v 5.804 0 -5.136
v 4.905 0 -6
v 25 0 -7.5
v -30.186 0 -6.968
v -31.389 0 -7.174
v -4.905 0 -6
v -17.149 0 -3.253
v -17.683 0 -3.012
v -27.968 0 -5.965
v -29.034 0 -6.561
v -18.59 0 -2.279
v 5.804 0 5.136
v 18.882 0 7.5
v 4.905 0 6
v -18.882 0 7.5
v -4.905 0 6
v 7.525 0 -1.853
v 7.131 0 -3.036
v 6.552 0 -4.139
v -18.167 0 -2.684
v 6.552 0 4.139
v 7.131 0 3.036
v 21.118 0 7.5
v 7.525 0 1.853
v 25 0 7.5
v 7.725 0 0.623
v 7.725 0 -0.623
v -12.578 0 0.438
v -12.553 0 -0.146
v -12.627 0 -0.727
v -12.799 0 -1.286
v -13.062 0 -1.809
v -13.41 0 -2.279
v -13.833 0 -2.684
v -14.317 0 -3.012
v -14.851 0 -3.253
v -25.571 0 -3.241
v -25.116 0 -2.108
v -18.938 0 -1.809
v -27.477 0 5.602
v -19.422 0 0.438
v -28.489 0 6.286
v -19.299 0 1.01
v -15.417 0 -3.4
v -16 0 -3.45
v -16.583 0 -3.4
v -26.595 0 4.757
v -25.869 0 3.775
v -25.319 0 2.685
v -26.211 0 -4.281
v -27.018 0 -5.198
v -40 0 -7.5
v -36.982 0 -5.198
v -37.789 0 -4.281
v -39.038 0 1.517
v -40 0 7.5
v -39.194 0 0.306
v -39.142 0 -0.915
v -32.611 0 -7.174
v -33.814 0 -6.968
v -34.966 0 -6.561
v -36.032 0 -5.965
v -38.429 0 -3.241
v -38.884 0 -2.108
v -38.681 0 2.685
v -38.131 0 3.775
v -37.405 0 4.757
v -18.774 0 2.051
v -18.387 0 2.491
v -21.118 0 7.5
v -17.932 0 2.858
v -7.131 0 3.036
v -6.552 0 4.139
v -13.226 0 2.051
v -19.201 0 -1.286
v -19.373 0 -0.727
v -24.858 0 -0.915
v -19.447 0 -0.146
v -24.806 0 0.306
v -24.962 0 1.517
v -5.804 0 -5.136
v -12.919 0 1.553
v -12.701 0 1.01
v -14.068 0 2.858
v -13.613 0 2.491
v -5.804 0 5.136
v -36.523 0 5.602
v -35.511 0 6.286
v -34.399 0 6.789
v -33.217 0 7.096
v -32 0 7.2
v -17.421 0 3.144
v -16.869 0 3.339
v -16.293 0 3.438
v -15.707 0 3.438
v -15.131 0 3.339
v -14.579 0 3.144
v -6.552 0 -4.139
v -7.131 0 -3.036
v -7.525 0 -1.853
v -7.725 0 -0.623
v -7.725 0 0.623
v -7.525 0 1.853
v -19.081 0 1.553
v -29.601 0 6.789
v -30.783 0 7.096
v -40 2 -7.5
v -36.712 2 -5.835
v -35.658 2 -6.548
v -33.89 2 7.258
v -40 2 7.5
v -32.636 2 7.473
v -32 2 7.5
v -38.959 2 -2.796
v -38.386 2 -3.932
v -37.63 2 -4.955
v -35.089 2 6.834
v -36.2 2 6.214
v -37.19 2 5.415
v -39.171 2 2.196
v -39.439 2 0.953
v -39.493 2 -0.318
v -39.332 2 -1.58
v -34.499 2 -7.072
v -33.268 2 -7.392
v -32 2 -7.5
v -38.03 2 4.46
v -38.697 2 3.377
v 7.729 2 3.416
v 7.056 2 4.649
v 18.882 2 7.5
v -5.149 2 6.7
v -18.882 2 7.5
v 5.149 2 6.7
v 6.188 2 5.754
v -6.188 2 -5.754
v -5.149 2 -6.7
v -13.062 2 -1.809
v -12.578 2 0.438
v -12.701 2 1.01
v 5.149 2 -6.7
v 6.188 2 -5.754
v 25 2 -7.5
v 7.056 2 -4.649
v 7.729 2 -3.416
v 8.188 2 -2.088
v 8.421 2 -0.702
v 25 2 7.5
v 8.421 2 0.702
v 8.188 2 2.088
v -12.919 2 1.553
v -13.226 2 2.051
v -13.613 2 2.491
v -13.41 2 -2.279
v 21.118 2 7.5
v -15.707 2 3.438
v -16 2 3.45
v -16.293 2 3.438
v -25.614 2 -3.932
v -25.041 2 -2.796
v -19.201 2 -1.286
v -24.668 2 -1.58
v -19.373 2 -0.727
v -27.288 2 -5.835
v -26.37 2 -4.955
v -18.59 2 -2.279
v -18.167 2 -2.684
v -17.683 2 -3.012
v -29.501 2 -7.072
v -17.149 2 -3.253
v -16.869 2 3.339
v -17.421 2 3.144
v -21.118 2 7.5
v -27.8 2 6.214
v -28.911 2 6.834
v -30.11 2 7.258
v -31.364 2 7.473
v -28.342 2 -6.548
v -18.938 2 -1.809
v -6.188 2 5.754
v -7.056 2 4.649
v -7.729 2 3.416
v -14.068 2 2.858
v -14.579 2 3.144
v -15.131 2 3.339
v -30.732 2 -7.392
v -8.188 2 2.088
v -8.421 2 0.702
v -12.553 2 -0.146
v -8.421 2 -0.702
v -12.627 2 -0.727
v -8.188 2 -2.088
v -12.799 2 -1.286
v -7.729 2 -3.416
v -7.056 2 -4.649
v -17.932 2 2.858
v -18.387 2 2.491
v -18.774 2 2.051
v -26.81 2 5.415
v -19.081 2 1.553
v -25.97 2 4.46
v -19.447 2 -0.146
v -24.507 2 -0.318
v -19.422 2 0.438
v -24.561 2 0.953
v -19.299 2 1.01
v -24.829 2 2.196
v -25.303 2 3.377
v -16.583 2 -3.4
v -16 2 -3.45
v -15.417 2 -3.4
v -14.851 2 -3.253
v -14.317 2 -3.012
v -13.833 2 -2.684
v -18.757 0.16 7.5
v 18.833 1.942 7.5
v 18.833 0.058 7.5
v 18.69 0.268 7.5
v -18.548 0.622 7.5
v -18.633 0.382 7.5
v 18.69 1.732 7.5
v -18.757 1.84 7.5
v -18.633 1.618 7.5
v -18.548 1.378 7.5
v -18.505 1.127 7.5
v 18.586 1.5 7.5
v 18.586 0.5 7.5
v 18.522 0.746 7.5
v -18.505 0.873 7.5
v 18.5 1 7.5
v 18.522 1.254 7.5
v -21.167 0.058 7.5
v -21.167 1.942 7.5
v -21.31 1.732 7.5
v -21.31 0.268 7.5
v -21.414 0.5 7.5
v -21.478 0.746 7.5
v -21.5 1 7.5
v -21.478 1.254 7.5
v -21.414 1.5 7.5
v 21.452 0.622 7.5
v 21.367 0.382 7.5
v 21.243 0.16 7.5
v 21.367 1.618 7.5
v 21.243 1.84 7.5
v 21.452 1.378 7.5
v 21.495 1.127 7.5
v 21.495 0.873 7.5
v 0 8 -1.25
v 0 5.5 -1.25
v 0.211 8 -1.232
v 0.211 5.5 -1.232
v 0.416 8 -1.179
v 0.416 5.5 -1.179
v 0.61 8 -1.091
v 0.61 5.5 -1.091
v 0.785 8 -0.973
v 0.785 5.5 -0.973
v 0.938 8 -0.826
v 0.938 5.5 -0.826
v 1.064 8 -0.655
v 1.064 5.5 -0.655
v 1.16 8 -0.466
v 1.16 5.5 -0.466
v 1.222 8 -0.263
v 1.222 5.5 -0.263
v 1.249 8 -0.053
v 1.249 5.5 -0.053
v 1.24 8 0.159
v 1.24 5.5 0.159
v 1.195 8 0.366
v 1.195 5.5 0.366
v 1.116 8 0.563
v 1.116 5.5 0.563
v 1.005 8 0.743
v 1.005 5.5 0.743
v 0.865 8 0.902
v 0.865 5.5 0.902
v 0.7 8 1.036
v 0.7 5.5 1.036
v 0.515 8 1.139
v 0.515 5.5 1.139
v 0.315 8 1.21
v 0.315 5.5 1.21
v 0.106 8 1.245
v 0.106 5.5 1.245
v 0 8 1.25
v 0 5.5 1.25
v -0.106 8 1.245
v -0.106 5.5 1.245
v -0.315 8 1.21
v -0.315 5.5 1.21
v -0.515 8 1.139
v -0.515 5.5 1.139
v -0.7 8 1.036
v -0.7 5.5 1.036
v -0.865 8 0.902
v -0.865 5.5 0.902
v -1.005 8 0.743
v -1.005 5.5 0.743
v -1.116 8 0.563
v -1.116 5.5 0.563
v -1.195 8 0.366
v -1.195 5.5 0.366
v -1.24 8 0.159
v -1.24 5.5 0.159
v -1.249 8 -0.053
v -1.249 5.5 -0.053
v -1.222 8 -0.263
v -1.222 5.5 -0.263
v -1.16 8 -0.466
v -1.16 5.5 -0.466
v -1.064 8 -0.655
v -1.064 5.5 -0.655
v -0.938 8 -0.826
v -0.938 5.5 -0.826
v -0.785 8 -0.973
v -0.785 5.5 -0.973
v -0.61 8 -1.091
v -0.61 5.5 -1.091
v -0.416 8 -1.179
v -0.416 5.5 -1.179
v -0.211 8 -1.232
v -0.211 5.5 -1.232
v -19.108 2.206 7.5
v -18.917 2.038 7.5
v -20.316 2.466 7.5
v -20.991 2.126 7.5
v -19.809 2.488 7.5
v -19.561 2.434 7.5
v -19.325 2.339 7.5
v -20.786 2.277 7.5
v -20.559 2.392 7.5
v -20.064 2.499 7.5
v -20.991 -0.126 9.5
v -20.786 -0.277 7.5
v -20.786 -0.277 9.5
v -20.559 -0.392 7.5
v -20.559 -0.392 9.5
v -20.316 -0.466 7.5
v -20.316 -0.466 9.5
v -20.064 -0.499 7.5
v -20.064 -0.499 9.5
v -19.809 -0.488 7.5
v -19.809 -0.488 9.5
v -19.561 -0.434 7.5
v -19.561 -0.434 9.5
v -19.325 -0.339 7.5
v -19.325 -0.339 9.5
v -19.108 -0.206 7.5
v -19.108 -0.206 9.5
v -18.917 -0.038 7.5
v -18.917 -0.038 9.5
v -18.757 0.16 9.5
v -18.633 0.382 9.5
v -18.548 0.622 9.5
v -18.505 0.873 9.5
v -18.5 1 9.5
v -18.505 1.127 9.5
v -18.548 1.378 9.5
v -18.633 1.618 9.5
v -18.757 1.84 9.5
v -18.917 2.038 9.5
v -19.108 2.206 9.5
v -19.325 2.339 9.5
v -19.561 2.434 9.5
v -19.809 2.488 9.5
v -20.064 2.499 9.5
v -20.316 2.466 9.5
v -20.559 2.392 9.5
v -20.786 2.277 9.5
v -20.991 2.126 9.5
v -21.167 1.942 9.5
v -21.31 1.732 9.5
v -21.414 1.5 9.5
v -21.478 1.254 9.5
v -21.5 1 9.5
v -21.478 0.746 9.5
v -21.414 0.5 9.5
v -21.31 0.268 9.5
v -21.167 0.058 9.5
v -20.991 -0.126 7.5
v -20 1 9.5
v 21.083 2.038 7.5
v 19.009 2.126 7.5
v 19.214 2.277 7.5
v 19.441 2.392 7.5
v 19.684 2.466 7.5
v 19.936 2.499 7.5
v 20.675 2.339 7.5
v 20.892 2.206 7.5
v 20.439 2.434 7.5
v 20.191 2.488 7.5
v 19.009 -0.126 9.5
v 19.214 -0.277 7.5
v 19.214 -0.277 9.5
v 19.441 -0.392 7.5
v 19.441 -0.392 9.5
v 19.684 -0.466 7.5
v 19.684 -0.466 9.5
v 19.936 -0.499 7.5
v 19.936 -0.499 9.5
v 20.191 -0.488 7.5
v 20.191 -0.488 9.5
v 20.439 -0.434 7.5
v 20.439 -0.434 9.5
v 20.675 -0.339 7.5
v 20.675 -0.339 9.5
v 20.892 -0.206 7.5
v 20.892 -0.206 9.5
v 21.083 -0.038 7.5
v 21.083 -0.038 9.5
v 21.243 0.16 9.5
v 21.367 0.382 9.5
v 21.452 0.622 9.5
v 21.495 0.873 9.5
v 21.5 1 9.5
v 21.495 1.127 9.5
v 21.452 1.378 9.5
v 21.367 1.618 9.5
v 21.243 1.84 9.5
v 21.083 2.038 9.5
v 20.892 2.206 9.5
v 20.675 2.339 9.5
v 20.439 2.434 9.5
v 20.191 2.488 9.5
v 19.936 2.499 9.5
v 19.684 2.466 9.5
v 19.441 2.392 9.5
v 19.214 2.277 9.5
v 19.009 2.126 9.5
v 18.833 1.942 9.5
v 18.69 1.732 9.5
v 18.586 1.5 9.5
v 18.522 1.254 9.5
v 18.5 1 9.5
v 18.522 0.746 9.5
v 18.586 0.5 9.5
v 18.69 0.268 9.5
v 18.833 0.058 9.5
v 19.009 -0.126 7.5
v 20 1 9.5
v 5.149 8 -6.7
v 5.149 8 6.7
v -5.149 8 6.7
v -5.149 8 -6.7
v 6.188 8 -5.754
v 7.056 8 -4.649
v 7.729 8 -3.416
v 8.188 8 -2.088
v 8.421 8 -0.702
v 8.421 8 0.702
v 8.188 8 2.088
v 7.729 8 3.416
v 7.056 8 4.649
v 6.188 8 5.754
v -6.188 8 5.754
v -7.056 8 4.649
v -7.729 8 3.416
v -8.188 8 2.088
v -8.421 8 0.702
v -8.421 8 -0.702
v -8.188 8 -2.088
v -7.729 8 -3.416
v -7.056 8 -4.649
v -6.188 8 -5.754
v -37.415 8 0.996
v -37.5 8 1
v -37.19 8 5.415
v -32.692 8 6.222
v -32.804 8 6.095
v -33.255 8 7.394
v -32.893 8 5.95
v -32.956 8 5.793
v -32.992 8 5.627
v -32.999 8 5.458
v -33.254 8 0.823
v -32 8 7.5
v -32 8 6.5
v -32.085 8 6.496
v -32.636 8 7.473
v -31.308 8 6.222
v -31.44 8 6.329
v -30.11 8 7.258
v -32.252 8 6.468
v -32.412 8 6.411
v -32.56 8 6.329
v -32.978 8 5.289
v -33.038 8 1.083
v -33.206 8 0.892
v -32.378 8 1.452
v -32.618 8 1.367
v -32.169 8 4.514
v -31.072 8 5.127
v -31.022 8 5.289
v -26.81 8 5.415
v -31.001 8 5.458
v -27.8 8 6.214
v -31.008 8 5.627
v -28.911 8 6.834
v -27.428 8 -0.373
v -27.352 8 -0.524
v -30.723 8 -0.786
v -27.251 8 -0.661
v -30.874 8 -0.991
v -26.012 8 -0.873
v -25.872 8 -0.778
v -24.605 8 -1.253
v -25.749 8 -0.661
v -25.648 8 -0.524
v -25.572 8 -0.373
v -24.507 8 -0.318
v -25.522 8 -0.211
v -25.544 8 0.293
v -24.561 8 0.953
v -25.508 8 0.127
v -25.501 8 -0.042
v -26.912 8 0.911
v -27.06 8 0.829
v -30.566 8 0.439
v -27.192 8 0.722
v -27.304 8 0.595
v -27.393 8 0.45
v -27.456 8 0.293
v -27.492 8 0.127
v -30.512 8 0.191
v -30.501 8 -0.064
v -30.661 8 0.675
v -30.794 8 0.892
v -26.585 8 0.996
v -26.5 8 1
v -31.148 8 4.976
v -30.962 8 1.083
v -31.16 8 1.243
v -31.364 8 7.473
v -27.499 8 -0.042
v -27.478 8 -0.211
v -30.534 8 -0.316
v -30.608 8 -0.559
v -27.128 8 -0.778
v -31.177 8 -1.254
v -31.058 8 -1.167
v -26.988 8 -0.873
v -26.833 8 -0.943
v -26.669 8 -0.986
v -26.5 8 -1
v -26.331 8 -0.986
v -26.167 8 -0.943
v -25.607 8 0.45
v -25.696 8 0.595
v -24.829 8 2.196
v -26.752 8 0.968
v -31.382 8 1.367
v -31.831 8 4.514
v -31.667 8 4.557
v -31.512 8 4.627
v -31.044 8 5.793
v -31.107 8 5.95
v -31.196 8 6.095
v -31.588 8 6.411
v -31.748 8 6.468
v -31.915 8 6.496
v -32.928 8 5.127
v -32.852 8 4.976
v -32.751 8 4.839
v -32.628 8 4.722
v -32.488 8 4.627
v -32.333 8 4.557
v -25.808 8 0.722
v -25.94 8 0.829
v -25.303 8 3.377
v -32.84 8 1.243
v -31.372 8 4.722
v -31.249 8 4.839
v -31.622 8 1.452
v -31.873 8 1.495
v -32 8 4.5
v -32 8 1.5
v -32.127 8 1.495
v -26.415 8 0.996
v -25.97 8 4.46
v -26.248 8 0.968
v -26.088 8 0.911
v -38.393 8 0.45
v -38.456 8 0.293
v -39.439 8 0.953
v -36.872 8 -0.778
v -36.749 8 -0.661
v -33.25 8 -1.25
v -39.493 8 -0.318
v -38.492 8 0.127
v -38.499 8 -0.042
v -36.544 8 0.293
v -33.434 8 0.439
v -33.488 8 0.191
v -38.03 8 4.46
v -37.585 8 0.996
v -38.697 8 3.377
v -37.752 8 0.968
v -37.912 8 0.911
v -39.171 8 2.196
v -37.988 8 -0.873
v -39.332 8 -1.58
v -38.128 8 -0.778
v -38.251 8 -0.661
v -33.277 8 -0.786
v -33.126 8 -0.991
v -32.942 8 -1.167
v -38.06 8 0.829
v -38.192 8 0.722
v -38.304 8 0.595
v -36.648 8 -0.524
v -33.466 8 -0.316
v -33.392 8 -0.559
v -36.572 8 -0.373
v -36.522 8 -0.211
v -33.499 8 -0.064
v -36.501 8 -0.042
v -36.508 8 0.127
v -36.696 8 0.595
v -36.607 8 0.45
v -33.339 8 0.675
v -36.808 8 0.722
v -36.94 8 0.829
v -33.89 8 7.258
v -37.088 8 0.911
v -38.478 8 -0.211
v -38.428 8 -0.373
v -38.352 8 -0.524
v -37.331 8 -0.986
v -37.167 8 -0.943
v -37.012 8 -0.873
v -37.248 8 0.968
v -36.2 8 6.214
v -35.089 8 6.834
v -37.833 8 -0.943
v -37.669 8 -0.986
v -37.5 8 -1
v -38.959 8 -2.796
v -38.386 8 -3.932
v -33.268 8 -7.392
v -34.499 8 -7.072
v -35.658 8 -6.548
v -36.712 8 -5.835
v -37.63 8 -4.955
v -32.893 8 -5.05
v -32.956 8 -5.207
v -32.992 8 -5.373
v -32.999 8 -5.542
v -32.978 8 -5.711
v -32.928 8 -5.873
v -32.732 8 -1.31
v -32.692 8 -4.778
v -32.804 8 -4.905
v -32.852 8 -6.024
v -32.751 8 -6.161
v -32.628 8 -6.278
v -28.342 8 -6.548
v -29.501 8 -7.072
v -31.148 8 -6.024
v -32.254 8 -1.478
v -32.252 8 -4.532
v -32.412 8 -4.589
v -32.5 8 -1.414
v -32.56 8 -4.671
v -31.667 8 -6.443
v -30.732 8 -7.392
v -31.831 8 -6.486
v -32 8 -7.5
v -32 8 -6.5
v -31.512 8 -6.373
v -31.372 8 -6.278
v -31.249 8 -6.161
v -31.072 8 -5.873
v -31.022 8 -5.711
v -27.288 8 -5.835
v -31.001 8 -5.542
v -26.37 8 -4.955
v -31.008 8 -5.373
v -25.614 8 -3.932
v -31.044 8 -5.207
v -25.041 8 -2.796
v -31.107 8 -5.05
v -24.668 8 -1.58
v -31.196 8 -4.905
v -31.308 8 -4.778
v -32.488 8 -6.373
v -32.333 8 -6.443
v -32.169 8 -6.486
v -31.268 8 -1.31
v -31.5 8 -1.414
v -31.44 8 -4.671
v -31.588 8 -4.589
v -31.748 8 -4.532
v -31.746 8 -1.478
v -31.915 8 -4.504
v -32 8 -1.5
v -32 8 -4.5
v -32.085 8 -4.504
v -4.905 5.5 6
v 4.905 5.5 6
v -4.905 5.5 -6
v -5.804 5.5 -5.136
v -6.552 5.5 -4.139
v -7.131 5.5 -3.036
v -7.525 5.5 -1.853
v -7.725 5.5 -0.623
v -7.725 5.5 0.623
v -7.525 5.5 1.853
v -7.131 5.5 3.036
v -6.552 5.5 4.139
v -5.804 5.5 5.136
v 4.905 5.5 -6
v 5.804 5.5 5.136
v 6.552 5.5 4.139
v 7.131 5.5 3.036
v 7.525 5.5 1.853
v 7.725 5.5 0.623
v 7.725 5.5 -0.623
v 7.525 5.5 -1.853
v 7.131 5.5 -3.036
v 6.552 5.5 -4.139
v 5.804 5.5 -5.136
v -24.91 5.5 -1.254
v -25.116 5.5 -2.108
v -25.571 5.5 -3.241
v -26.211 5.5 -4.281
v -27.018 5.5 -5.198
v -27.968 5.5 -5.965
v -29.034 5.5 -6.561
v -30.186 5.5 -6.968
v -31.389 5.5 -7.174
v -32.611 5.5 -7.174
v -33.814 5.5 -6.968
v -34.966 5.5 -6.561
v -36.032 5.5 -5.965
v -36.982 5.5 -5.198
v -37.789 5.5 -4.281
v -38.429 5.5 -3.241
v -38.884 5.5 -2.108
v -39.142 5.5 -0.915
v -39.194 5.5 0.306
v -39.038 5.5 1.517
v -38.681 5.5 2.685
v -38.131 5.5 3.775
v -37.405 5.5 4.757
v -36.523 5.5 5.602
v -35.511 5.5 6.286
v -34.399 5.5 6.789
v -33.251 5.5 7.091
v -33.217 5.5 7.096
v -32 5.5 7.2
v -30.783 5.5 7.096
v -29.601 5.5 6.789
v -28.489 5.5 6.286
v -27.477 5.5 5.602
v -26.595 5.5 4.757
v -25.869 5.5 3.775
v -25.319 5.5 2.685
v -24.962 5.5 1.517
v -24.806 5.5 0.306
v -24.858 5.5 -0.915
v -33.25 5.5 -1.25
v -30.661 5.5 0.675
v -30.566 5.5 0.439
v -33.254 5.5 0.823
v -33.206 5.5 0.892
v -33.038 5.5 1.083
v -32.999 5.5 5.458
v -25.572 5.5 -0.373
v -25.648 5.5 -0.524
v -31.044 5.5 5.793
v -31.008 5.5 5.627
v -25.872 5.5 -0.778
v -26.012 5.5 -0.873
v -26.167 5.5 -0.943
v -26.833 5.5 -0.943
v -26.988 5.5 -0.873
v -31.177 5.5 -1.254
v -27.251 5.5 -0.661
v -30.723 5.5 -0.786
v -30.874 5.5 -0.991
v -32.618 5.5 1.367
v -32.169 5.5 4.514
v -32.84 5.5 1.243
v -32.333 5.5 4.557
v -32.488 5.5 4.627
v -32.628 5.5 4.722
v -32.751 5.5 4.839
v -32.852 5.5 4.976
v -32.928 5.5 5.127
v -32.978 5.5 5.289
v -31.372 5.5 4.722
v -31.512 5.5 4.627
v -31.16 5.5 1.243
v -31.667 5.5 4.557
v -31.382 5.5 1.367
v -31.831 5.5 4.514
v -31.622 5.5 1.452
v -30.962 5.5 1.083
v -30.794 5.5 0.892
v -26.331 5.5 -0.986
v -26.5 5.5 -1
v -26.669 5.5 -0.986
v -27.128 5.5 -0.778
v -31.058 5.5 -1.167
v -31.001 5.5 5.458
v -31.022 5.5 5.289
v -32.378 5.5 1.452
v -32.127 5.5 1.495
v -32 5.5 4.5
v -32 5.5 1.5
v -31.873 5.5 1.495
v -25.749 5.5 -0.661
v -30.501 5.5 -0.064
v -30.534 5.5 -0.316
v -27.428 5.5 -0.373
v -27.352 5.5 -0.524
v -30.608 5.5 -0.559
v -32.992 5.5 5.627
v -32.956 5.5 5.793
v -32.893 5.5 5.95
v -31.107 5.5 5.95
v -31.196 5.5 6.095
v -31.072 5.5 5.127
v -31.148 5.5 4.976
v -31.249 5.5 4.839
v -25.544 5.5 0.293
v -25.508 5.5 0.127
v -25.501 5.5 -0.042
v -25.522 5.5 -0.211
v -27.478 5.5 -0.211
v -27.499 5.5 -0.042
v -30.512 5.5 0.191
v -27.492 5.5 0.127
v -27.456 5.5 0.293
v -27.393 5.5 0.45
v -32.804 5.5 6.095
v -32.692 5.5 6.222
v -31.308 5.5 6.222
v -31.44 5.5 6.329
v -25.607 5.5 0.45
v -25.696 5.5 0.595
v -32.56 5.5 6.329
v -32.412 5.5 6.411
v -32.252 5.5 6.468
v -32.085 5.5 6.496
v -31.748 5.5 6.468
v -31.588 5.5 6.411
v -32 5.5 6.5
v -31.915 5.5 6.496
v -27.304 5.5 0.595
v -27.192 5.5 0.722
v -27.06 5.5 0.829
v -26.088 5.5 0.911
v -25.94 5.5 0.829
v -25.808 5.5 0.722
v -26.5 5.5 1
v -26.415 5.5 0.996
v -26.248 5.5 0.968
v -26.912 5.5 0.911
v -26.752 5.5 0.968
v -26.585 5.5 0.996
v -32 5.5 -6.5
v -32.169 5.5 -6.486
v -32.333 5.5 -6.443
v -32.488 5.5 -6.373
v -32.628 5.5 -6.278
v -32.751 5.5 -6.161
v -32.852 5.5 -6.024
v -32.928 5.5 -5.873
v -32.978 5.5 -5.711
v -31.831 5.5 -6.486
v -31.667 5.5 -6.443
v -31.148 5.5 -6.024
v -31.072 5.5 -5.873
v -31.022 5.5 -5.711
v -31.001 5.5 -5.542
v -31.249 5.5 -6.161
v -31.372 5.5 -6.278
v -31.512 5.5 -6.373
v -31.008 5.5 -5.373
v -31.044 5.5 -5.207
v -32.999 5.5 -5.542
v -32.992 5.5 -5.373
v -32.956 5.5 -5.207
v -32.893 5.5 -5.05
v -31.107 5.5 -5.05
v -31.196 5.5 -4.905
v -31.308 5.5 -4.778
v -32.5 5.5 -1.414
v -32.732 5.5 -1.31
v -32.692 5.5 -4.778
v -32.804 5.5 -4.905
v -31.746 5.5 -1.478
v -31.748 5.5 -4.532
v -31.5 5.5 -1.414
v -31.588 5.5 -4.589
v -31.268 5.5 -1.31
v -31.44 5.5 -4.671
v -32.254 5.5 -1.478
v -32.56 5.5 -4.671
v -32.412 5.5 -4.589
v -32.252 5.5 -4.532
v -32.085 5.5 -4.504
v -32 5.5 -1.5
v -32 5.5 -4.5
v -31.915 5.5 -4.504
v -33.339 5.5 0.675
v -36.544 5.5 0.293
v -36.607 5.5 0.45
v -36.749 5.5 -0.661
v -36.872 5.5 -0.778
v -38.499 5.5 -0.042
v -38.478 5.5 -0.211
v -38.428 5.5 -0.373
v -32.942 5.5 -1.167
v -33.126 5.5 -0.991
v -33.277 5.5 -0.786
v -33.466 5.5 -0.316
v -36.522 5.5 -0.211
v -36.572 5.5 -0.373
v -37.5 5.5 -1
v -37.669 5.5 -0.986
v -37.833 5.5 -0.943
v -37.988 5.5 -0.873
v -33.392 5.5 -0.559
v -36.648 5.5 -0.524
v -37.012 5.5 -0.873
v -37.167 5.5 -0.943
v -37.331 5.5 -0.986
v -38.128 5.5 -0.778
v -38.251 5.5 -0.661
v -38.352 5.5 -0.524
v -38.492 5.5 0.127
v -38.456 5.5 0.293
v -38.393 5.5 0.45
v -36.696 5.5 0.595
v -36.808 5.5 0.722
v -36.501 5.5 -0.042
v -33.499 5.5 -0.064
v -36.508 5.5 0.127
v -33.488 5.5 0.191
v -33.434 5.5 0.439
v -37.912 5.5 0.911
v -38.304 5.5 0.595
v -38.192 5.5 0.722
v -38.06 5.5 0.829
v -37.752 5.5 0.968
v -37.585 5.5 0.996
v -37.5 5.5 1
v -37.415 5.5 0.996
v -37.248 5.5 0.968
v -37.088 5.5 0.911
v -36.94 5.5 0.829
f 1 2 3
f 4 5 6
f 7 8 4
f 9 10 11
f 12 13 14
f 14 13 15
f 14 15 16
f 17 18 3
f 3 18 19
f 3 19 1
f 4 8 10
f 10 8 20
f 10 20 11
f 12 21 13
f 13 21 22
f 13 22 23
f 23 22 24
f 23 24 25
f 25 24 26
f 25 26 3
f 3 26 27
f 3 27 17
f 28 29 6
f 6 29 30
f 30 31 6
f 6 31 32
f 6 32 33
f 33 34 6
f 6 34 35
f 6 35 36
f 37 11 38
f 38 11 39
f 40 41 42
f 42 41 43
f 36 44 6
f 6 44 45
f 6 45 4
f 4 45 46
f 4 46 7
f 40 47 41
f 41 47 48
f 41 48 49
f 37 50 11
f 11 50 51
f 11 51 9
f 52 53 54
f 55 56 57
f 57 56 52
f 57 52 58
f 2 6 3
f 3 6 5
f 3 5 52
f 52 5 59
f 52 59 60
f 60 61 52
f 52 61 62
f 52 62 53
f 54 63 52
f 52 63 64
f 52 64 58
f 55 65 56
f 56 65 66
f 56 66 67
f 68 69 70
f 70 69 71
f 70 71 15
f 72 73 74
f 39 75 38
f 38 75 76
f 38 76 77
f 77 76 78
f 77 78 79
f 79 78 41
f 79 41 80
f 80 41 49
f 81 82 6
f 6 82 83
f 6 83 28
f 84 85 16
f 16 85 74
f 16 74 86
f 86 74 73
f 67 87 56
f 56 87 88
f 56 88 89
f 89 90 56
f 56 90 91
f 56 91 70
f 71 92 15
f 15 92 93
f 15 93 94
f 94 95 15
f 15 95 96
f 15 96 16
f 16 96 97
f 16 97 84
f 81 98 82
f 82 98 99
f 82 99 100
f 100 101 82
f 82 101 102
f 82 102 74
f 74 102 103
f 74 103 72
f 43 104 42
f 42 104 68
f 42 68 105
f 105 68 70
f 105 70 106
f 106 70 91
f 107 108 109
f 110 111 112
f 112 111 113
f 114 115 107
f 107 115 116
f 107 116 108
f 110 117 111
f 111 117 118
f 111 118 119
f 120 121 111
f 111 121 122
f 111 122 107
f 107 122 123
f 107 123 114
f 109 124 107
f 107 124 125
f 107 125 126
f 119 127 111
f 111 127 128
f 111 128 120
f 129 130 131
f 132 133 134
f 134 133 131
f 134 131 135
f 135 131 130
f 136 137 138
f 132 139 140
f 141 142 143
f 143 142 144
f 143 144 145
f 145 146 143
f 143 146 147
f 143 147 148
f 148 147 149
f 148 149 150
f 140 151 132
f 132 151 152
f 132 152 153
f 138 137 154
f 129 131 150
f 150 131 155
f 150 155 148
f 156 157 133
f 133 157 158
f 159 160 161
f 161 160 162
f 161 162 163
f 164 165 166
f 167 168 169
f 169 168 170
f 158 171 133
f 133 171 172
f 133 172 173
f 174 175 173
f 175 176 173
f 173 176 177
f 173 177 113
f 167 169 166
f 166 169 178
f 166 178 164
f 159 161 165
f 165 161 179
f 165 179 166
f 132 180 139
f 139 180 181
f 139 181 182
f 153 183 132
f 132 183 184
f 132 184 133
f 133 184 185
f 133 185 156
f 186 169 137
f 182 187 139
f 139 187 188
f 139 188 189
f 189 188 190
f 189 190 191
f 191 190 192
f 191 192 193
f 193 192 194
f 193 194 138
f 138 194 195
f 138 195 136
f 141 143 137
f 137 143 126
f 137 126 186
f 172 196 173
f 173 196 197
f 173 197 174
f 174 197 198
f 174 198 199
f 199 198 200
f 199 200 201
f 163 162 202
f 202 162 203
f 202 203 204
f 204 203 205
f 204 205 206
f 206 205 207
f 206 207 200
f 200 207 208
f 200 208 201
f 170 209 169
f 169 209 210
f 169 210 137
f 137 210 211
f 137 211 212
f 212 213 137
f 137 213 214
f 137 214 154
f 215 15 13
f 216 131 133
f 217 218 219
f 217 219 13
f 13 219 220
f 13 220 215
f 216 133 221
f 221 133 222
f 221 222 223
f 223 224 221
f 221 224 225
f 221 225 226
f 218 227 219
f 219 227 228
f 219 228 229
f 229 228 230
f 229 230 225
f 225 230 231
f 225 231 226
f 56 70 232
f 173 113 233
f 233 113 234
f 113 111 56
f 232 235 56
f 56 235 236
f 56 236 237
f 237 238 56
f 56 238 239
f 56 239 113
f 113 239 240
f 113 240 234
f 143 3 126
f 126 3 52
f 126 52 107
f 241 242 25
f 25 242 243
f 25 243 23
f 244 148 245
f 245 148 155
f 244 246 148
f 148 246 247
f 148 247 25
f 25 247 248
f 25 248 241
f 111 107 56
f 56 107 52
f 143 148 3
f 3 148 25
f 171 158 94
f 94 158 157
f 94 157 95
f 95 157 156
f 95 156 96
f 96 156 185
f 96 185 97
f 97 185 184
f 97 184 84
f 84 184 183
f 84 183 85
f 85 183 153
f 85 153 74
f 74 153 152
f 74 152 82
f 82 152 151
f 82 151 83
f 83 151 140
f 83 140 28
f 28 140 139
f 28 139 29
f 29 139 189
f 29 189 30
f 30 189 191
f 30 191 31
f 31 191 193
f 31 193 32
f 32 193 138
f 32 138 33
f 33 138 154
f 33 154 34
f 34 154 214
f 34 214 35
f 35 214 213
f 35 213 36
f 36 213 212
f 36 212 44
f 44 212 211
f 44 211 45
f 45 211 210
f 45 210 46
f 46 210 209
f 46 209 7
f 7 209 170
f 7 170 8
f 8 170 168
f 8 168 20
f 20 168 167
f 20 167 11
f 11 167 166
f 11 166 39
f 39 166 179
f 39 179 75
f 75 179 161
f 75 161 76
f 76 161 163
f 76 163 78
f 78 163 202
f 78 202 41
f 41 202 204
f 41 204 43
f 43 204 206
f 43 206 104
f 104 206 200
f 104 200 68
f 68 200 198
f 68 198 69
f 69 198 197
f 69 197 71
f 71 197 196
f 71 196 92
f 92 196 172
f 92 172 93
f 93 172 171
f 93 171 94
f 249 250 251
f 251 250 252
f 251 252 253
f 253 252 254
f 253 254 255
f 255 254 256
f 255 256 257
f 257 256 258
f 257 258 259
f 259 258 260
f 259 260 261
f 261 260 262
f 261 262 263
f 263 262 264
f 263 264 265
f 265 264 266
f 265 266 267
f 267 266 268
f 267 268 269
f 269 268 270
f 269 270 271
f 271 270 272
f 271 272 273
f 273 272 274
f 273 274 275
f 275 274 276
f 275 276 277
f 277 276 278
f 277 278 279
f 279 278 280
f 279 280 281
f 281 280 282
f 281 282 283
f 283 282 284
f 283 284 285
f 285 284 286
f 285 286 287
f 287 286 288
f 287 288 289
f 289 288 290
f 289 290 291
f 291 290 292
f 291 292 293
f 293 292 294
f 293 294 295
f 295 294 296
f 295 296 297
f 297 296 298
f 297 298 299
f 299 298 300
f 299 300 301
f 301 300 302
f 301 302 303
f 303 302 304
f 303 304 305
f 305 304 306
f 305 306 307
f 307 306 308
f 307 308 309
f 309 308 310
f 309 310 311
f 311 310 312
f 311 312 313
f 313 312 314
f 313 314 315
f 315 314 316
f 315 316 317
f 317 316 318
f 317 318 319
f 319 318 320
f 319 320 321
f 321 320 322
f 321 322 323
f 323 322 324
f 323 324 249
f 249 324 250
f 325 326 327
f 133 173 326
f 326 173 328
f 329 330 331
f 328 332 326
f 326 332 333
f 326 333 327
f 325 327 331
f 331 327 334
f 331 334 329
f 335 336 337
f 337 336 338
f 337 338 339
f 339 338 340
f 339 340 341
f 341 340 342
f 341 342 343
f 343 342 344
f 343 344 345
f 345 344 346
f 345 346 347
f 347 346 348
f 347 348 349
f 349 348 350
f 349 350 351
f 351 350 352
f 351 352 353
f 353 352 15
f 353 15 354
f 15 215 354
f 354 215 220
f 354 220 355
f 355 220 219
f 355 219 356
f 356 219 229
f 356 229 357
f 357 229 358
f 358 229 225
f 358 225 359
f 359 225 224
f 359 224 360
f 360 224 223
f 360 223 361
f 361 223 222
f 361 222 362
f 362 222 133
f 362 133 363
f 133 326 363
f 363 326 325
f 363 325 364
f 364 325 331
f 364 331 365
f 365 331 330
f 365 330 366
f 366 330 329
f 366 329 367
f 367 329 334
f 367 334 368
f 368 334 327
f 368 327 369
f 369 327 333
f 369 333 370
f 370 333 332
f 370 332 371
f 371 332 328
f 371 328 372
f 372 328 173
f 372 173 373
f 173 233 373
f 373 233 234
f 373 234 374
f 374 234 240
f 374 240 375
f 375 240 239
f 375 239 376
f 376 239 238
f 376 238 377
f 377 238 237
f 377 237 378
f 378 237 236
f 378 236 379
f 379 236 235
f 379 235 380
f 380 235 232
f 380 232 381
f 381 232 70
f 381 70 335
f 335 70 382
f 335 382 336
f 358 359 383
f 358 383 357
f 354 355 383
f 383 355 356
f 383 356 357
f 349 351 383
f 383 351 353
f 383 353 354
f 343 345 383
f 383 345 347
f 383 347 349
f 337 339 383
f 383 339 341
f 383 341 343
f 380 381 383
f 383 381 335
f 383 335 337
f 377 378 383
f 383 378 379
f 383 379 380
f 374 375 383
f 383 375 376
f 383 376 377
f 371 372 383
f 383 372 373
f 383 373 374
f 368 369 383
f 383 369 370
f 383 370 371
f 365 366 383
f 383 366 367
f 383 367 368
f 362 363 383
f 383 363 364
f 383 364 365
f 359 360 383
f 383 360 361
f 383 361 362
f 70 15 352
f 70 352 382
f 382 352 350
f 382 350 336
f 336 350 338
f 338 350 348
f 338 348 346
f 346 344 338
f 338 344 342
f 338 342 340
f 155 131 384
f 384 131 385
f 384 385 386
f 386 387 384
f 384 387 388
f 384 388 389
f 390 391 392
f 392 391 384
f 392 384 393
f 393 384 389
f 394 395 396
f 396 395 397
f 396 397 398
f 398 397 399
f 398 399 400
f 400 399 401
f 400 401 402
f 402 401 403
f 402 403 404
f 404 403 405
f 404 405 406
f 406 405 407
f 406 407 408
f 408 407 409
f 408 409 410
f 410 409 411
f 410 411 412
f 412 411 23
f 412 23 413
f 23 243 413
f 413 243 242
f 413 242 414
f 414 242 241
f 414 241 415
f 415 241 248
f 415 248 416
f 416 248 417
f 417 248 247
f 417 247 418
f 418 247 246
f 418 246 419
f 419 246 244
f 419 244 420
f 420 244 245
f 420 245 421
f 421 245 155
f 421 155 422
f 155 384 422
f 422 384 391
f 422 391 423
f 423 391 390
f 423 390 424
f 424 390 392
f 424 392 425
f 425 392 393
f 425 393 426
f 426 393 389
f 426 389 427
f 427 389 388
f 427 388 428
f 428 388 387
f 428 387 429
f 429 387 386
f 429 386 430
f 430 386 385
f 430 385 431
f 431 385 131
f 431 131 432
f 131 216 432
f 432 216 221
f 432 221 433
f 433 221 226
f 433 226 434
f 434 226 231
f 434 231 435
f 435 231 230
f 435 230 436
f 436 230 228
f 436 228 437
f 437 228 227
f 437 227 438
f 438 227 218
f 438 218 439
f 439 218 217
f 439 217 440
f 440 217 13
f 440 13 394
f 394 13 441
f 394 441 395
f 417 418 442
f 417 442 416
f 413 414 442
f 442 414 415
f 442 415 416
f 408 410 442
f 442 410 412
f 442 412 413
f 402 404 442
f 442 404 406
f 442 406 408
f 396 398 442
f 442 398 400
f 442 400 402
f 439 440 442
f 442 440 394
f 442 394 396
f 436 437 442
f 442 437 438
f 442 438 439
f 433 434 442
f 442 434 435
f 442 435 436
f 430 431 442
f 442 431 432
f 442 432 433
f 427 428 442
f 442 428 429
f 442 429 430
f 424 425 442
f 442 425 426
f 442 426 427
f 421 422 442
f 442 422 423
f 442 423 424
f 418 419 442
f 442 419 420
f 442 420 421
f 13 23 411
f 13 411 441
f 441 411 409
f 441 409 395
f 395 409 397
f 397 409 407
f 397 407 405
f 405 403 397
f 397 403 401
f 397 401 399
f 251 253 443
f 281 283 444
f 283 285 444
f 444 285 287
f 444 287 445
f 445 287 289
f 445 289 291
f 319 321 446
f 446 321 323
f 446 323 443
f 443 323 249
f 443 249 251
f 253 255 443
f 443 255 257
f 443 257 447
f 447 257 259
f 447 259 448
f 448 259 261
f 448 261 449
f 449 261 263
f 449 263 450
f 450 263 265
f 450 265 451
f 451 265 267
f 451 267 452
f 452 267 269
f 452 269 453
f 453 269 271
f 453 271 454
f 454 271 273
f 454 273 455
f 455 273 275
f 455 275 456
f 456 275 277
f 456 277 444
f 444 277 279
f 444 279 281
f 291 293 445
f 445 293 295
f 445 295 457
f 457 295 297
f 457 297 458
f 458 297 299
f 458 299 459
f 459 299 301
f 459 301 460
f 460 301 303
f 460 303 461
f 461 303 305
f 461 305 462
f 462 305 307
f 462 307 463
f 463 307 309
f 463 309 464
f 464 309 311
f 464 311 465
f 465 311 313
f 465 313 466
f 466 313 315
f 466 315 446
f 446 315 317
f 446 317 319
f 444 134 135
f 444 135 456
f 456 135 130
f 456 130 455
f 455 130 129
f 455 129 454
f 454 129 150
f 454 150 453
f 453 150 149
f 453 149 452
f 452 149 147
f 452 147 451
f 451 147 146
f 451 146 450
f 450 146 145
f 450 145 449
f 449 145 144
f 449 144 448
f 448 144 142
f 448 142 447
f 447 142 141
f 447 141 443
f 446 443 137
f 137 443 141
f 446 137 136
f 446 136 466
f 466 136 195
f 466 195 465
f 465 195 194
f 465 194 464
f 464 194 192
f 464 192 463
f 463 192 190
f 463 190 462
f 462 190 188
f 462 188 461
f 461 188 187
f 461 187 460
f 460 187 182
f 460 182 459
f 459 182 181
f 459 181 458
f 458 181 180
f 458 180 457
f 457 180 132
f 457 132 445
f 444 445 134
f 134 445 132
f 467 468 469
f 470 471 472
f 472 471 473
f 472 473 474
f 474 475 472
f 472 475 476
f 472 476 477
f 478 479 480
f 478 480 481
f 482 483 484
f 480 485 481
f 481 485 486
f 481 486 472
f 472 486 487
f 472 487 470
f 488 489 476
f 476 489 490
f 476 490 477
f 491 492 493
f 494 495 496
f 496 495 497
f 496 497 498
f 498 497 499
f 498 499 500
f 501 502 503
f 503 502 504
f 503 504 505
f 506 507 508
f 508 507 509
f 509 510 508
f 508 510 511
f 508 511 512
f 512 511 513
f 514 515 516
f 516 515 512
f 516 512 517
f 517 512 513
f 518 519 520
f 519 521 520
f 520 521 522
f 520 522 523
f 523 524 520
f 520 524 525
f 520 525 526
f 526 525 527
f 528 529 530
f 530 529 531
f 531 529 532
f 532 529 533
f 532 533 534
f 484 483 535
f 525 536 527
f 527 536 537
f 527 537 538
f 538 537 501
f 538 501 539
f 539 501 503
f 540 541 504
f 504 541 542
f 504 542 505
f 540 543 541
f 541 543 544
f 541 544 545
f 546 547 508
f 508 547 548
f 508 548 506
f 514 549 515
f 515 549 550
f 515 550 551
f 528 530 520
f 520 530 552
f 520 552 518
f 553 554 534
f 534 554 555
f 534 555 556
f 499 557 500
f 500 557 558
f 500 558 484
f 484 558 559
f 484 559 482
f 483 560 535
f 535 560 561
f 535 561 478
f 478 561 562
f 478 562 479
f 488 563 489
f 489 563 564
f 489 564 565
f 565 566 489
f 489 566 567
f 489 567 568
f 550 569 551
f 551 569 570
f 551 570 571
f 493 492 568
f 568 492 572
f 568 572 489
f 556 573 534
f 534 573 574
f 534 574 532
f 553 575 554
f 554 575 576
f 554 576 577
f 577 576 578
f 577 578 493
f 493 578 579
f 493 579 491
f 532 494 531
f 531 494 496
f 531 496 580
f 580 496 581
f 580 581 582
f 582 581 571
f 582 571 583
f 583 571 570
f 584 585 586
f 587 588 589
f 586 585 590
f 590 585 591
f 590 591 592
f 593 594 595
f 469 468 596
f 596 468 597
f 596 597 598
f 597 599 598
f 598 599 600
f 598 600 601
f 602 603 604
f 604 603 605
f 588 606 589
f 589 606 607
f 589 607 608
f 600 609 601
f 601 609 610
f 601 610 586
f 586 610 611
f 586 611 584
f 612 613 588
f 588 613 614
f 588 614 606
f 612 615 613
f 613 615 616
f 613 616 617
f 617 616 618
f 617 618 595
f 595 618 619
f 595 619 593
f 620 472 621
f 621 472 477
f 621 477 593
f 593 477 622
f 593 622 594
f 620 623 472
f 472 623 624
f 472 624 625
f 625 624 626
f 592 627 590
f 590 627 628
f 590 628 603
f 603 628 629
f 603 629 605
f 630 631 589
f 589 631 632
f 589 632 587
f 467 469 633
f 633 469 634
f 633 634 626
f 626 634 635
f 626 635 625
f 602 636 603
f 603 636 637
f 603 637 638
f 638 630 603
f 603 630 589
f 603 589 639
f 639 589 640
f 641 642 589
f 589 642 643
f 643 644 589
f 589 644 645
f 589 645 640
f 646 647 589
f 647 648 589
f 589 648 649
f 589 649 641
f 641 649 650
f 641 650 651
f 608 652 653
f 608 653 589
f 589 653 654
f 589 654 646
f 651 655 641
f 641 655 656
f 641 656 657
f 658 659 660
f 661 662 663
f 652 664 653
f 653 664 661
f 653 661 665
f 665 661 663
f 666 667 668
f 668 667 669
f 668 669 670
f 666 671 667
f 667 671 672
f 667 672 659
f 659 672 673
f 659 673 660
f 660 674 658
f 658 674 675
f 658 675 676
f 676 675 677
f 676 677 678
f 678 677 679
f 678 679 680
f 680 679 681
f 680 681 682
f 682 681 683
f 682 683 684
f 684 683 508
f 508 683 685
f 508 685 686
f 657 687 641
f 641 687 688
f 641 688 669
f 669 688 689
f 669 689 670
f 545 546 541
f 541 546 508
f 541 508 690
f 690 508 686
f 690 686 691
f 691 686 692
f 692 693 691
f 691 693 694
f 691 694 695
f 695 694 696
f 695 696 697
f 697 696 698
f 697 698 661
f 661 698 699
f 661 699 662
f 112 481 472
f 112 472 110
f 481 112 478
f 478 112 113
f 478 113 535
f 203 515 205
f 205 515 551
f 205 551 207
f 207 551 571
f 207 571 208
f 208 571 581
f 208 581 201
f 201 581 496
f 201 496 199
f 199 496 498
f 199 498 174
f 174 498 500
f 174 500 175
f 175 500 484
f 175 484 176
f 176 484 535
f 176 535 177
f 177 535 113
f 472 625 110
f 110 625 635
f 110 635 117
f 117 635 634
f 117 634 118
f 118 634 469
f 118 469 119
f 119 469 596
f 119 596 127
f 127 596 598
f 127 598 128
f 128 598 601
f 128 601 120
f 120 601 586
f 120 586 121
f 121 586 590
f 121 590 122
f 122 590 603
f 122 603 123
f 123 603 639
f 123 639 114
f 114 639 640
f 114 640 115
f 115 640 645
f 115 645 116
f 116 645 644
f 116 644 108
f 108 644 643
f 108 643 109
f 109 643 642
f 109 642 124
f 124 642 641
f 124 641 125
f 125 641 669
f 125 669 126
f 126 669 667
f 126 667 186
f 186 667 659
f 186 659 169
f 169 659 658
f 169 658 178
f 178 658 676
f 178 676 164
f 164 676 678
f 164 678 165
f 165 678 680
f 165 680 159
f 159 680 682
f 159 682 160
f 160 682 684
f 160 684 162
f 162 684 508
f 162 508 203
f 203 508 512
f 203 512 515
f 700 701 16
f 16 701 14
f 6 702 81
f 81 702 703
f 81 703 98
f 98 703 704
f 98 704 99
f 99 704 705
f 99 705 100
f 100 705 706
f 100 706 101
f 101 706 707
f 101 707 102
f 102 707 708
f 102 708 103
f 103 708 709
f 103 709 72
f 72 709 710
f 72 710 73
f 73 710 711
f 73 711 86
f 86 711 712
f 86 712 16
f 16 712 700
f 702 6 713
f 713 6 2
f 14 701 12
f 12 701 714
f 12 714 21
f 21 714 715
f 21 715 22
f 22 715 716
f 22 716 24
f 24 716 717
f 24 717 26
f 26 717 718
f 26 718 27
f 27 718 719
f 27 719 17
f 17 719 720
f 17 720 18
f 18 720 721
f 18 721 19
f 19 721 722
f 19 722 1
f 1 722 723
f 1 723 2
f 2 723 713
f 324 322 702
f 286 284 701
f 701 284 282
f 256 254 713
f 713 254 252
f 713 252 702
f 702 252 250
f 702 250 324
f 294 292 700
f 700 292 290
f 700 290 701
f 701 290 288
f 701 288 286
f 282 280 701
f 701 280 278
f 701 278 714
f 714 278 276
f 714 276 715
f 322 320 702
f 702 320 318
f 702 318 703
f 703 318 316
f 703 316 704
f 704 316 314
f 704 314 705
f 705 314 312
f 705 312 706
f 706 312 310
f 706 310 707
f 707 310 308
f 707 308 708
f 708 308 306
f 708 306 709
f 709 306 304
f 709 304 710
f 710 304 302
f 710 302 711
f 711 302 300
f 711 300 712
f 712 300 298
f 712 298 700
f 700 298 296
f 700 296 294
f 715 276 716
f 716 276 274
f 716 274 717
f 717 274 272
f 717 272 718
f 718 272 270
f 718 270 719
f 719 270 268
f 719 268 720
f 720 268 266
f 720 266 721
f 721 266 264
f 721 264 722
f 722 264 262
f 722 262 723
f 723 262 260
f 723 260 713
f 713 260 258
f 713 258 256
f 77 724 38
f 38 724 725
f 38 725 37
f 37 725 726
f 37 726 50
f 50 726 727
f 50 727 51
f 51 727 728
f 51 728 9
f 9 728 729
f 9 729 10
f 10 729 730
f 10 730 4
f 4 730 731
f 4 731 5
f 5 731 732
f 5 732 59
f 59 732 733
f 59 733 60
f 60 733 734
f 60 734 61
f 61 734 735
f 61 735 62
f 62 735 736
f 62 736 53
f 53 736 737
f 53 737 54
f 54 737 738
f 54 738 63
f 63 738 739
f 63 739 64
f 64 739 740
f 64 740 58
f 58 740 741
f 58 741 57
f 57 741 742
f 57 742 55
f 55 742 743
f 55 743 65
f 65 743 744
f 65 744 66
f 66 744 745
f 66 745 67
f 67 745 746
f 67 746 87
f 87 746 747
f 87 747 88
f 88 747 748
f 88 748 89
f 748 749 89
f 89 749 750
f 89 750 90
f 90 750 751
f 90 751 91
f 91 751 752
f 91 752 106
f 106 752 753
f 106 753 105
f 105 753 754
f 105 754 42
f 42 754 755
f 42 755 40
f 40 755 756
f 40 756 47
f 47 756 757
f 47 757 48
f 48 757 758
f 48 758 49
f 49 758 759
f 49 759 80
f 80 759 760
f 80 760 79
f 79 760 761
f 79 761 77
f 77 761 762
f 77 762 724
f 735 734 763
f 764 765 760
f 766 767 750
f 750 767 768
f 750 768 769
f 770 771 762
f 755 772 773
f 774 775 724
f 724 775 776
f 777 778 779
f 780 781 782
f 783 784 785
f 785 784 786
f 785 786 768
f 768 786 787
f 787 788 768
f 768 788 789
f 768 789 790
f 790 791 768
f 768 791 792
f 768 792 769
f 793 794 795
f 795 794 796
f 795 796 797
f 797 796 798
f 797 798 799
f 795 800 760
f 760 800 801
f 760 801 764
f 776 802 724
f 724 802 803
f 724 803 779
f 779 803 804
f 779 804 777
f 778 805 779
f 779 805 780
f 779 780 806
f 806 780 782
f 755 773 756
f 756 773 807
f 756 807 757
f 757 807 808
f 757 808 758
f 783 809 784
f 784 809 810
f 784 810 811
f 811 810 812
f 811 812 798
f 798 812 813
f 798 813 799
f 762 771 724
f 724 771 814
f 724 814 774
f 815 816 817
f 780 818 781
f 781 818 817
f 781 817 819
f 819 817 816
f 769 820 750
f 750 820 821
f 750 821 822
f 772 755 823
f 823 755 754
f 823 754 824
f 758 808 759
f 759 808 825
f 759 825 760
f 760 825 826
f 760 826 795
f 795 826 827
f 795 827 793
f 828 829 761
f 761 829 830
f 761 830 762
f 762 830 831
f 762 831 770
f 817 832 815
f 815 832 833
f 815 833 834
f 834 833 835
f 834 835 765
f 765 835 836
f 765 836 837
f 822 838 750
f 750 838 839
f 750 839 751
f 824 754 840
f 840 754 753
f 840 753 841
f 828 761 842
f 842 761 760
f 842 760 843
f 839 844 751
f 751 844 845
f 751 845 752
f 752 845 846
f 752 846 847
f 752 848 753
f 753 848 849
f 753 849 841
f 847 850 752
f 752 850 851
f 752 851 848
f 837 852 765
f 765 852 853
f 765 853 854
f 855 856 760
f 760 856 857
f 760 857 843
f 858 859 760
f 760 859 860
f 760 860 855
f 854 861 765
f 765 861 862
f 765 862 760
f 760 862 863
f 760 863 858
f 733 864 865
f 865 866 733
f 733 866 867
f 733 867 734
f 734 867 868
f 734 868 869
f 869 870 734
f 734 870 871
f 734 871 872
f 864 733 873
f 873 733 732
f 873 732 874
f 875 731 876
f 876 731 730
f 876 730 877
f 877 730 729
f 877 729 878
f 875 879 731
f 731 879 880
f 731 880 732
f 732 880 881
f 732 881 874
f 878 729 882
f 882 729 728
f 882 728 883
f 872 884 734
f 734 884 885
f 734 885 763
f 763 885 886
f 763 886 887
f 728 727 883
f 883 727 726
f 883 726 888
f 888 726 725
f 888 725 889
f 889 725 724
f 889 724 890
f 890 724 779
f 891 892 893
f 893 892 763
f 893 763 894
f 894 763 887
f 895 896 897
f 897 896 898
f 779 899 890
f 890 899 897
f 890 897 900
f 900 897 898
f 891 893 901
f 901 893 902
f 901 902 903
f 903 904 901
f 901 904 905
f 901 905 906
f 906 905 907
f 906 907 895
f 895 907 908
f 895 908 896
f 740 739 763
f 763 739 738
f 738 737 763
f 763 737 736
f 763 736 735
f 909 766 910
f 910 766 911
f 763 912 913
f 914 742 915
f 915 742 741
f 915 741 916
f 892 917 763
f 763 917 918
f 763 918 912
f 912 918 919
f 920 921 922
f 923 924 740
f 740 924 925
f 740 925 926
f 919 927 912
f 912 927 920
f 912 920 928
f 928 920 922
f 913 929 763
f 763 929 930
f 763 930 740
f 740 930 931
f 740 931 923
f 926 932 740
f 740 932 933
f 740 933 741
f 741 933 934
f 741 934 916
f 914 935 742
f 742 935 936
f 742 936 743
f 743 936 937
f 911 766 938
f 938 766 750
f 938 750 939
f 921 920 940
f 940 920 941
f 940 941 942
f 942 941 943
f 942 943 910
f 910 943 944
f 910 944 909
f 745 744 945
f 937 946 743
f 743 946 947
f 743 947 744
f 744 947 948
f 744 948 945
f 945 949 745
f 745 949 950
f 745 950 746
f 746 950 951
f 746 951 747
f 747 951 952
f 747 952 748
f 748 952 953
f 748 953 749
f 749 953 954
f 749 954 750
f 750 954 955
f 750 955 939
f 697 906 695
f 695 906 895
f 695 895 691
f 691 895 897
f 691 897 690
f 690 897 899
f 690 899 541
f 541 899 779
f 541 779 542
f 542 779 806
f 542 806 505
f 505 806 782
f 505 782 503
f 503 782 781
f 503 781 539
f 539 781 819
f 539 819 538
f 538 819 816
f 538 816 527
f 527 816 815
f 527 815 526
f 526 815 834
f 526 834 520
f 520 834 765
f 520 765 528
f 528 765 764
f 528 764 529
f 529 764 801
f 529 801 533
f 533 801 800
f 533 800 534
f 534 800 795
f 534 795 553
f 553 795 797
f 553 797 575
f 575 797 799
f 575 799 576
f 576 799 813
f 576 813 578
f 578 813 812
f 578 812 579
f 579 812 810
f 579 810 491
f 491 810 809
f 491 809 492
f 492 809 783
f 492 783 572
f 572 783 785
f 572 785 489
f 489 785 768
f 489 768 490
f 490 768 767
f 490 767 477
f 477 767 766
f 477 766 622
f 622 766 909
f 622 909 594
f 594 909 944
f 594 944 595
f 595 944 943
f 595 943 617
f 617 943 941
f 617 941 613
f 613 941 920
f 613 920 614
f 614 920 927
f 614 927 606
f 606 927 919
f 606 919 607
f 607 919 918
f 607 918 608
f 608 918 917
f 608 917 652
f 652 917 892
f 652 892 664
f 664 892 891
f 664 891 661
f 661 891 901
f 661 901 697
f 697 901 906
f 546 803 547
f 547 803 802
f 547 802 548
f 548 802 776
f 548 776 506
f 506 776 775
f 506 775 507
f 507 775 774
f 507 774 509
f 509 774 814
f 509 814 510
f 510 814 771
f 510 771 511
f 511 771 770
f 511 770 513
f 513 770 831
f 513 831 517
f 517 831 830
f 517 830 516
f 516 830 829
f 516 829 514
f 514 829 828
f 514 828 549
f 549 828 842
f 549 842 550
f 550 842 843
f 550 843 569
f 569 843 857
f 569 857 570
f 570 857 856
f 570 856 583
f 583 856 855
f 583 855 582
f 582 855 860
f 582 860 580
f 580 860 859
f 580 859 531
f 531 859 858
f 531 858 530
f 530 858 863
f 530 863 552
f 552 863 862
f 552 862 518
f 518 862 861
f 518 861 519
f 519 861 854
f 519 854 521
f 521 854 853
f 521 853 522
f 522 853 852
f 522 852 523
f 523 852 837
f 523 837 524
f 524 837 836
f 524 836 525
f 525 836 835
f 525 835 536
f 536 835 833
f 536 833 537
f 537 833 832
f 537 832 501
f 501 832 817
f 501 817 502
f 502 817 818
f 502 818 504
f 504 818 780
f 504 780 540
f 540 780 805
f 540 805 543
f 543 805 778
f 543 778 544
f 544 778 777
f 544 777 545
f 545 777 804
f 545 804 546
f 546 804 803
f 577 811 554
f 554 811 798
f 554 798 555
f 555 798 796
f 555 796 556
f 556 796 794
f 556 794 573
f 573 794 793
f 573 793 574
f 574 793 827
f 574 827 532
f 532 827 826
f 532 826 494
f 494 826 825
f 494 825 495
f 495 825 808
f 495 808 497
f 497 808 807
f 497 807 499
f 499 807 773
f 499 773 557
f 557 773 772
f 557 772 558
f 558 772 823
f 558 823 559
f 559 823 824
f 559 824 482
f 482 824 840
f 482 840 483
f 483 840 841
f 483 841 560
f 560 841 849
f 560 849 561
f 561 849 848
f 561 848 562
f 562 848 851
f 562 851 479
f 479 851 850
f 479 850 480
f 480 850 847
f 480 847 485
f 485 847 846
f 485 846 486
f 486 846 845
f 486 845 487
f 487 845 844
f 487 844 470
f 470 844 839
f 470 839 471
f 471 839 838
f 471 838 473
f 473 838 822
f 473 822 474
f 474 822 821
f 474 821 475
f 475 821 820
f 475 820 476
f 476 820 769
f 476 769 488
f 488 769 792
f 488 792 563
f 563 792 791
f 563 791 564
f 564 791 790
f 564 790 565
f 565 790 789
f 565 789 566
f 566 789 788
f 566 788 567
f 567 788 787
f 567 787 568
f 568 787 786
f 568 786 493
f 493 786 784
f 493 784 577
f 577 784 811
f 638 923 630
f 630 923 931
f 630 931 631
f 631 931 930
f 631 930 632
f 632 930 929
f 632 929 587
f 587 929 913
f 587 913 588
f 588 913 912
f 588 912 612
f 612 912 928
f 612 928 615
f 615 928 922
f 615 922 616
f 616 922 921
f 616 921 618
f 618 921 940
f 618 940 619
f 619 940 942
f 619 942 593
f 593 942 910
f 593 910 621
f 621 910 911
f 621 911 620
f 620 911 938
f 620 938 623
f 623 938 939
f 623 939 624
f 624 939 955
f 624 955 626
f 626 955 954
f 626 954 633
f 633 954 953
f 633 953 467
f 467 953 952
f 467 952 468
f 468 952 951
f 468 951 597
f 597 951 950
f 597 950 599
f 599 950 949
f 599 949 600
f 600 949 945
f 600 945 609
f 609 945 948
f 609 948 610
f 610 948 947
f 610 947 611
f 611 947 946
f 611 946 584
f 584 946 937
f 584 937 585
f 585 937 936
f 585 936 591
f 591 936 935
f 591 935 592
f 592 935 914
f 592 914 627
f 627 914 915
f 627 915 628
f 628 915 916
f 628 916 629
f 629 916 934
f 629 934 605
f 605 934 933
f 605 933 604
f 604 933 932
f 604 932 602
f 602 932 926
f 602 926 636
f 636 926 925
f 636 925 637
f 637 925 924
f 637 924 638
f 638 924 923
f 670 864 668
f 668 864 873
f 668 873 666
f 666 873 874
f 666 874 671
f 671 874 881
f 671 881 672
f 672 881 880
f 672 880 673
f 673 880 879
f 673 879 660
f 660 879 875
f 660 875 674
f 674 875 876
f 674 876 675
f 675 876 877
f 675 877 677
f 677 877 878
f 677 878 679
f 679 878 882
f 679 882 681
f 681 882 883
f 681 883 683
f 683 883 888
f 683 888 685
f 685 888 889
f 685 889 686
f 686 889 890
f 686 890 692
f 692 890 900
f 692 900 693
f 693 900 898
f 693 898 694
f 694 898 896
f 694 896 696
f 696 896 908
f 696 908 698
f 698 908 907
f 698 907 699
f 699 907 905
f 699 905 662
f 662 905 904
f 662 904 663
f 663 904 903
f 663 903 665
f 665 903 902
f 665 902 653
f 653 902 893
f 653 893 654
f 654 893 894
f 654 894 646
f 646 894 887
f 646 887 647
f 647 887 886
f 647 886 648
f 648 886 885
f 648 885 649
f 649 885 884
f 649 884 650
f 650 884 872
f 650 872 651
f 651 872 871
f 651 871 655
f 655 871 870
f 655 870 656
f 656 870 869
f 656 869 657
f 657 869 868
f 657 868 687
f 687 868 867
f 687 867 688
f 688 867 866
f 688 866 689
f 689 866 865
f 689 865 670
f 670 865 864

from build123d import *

# Parameters (mm, degrees)
SKETCH_1_W               = 65
SKETCH_1_H               = 15
EXTRUDE_1_DEPTH          = 2
SKETCH_2_R               = 1.25
SKETCH_2_R_2             = 3.45
SKETCH_2_R_3             = 1.5
SKETCH_2_R_4             = 1
CUT_EXTRUDE_1_DEPTH      = 2
SKETCH_4_R               = 1.5
EXTRUDE_2_DEPTH          = 2
SKETCH_5_R               = 7.5
SKETCH_5_R_2             = 7.2
EXTRUDE_3_DEPTH          = 6
SKETCH_5_8_R             = 1.25
SKETCH_5_8_R_2           = 7.2
EXTRUDE_4_DEPTH          = 6
CUT_EXTRUDE_2_DEPTH      = 3.5
CUT_EXTRUDE_2_DEPTH_BACK = 42.548164821
SKETCH_5_11_R            = 1.25
SKETCH_5_11_R_2          = 7.2
SKETCH_2_3_R             = 1.5
SKETCH_2_3_R_2           = 1
CUT_EXTRUDE_3_DEPTH      = 8


with BuildPart() as part:
    # 草图1 → 凸台-拉伸1 (new body)
    with BuildSketch(Plane(origin=(0, 0, 0), x_dir=(1, 0, 0), z_dir=(0, 1, 0))):
        with Locations((-7.5, 0)):
            Rectangle(SKETCH_1_W, SKETCH_1_H)
    extrude(amount=EXTRUDE_1_DEPTH)

    # 草图2 → 切除-拉伸1 (cut)
    with BuildSketch(Plane(origin=(0, 0, 0), x_dir=(1, 0, 0), z_dir=(0, 1, 0))):
        with Locations(Location((0, 0, 0), (0, 0, 270))):
            Circle(SKETCH_2_R)
        with Locations(Location((-16, 0, 0), (0, 0, 90))):
            Circle(SKETCH_2_R_2)
        with Locations(Location((-32, 0, 0), (0, 0, 270))):
            Circle(SKETCH_2_R_3)
        with Locations(Location((-26.5, 0, 0), (0, 0, 270))):
            Circle(SKETCH_2_R_4)
        with Locations(Location((-32, -5.5, 0), (0, 0, 270))):
            Circle(SKETCH_2_R_4)
        with Locations(Location((-37.5, 0, 0), (0, 0, 270))):
            Circle(SKETCH_2_R_4)
        with Locations(Location((-32, 5.5, 0), (0, 0, 270))):
            Circle(SKETCH_2_R_4)
    extrude(amount=CUT_EXTRUDE_1_DEPTH, mode=Mode.SUBTRACT)

    # 草图4 → 凸台-拉伸2 (add)
    with BuildSketch(Plane.XY.offset(7.5)):
        with Locations(Location((20, 1, 0), (0, 0, 221.810314896))):
            Circle(SKETCH_4_R)
        with Locations(Location((-20, 1, 0), (0, 0, 221.810314896))):
            Circle(SKETCH_4_R)
    extrude(amount=EXTRUDE_2_DEPTH)

    # 草图5 → 凸台-拉伸3 (add)
    # profile 1 of 2: a face of its own
    with BuildSketch(Plane(origin=(0, 2, 0), x_dir=(1, 0, 0), z_dir=(0, 1, 0))):
        with Locations(Location((-32, 0, 0), (0, 0, 270))):
            Circle(SKETCH_5_R)
        with Locations(Location((-32, 0, 0), (0, 0, 270))):
            Circle(SKETCH_5_R_2, mode=Mode.SUBTRACT)
    # profile 2 of 2: a face of its own
    with BuildSketch(Plane(origin=(0, 2, 0), x_dir=(1, 0, 0), z_dir=(0, 1, 0))):
        with BuildLine():
            Line((5.149029035, -6.7), (-5.149029035, -6.7))
            ThreePointArc((-5.149029035, -6.7), (-8.45, 0), (-5.149029035, 6.7))
            Line((-5.149029035, 6.7), (5.149029035, 6.7))
            ThreePointArc((5.149029035, 6.7), (8.45, 0), (5.149029035, -6.7))
        make_face()
        with BuildLine():
            Line((4.905354218, -6), (-4.905354218, -6))
            ThreePointArc((-4.905354218, -6), (-7.75, 0), (-4.905354218, 6))
            Line((-4.905354218, 6), (4.905354218, 6))
            ThreePointArc((4.905354218, 6), (7.75, 0), (4.905354218, -6))
        make_face(mode=Mode.SUBTRACT)
    extrude(amount=EXTRUDE_3_DEPTH)

    # 草图5<8> → 凸台-拉伸4 (add)
    # profile 1 of 2: a face of its own
    with BuildSketch(Plane(origin=(0, 2, 0), x_dir=(1, 0, 0), z_dir=(0, 1, 0))):
        with BuildLine():
            Line((4.905354218, -6), (-4.905354218, -6))
            ThreePointArc((-4.905354218, -6), (-7.75, 0), (-4.905354218, 6))
            Line((-4.905354218, 6), (4.905354218, 6))
            ThreePointArc((4.905354218, 6), (7.75, 0), (4.905354218, -6))
        make_face()
        with Locations(Location((0, 0, 0), (0, 0, 270))):
            Circle(SKETCH_5_8_R, mode=Mode.SUBTRACT)
    # profile 2 of 2: a face of its own
    with BuildSketch(Plane(origin=(0, 2, 0), x_dir=(1, 0, 0), z_dir=(0, 1, 0))):
        with Locations((-32, 0)):
            Circle(SKETCH_5_8_R_2)
    extrude(amount=EXTRUDE_4_DEPTH)

    # 草图5<11> → 切除-拉伸2 (cut, two sides: drawn at the far end of the back side and taken through both)
    # profile 1 of 2: a face of its own
    with BuildSketch(Plane(origin=(0, 2, 0), x_dir=(1, 0, 0), z_dir=(0, 1, 0)).offset(-CUT_EXTRUDE_2_DEPTH_BACK)):
        with BuildLine():
            Line((4.905354218, -6), (-4.905354218, -6))
            ThreePointArc((-4.905354218, -6), (-7.75, 0), (-4.905354218, 6))
            Line((-4.905354218, 6), (4.905354218, 6))
            ThreePointArc((4.905354218, 6), (7.75, 0), (4.905354218, -6))
        make_face()
        with Locations(Location((0, 0, 0), (0, 0, 270))):
            Circle(SKETCH_5_11_R, mode=Mode.SUBTRACT)
    # profile 2 of 2: a face of its own
    with BuildSketch(Plane(origin=(0, 2, 0), x_dir=(1, 0, 0), z_dir=(0, 1, 0)).offset(-CUT_EXTRUDE_2_DEPTH_BACK)):
        with Locations(Location((-32, 0, 0), (0, 0, 270))):
            Circle(SKETCH_5_11_R_2)
    extrude(amount=CUT_EXTRUDE_2_DEPTH + CUT_EXTRUDE_2_DEPTH_BACK, mode=Mode.SUBTRACT)

    # 草图2<3> → 切除-拉伸3 (cut)
    with BuildSketch(Plane(origin=(0, 0, 0), x_dir=(1, 0, 0), z_dir=(0, 1, 0))):
        with Locations(Location((-32, 0, 0), (0, 0, 270))):
            Circle(SKETCH_2_3_R)
        with Locations(Location((-32, 5.5, 0), (0, 0, 270))):
            Circle(SKETCH_2_3_R_2)
        with Locations(Location((-37.5, 0, 0), (0, 0, 270))):
            Circle(SKETCH_2_3_R_2)
        with Locations(Location((-32, -5.5, 0), (0, 0, 270))):
            Circle(SKETCH_2_3_R_2)
        with Locations(Location((-26.5, 0, 0), (0, 0, 270))):
            Circle(SKETCH_2_3_R_2)
    extrude(amount=CUT_EXTRUDE_3_DEPTH, mode=Mode.SUBTRACT)


solid = part.part
